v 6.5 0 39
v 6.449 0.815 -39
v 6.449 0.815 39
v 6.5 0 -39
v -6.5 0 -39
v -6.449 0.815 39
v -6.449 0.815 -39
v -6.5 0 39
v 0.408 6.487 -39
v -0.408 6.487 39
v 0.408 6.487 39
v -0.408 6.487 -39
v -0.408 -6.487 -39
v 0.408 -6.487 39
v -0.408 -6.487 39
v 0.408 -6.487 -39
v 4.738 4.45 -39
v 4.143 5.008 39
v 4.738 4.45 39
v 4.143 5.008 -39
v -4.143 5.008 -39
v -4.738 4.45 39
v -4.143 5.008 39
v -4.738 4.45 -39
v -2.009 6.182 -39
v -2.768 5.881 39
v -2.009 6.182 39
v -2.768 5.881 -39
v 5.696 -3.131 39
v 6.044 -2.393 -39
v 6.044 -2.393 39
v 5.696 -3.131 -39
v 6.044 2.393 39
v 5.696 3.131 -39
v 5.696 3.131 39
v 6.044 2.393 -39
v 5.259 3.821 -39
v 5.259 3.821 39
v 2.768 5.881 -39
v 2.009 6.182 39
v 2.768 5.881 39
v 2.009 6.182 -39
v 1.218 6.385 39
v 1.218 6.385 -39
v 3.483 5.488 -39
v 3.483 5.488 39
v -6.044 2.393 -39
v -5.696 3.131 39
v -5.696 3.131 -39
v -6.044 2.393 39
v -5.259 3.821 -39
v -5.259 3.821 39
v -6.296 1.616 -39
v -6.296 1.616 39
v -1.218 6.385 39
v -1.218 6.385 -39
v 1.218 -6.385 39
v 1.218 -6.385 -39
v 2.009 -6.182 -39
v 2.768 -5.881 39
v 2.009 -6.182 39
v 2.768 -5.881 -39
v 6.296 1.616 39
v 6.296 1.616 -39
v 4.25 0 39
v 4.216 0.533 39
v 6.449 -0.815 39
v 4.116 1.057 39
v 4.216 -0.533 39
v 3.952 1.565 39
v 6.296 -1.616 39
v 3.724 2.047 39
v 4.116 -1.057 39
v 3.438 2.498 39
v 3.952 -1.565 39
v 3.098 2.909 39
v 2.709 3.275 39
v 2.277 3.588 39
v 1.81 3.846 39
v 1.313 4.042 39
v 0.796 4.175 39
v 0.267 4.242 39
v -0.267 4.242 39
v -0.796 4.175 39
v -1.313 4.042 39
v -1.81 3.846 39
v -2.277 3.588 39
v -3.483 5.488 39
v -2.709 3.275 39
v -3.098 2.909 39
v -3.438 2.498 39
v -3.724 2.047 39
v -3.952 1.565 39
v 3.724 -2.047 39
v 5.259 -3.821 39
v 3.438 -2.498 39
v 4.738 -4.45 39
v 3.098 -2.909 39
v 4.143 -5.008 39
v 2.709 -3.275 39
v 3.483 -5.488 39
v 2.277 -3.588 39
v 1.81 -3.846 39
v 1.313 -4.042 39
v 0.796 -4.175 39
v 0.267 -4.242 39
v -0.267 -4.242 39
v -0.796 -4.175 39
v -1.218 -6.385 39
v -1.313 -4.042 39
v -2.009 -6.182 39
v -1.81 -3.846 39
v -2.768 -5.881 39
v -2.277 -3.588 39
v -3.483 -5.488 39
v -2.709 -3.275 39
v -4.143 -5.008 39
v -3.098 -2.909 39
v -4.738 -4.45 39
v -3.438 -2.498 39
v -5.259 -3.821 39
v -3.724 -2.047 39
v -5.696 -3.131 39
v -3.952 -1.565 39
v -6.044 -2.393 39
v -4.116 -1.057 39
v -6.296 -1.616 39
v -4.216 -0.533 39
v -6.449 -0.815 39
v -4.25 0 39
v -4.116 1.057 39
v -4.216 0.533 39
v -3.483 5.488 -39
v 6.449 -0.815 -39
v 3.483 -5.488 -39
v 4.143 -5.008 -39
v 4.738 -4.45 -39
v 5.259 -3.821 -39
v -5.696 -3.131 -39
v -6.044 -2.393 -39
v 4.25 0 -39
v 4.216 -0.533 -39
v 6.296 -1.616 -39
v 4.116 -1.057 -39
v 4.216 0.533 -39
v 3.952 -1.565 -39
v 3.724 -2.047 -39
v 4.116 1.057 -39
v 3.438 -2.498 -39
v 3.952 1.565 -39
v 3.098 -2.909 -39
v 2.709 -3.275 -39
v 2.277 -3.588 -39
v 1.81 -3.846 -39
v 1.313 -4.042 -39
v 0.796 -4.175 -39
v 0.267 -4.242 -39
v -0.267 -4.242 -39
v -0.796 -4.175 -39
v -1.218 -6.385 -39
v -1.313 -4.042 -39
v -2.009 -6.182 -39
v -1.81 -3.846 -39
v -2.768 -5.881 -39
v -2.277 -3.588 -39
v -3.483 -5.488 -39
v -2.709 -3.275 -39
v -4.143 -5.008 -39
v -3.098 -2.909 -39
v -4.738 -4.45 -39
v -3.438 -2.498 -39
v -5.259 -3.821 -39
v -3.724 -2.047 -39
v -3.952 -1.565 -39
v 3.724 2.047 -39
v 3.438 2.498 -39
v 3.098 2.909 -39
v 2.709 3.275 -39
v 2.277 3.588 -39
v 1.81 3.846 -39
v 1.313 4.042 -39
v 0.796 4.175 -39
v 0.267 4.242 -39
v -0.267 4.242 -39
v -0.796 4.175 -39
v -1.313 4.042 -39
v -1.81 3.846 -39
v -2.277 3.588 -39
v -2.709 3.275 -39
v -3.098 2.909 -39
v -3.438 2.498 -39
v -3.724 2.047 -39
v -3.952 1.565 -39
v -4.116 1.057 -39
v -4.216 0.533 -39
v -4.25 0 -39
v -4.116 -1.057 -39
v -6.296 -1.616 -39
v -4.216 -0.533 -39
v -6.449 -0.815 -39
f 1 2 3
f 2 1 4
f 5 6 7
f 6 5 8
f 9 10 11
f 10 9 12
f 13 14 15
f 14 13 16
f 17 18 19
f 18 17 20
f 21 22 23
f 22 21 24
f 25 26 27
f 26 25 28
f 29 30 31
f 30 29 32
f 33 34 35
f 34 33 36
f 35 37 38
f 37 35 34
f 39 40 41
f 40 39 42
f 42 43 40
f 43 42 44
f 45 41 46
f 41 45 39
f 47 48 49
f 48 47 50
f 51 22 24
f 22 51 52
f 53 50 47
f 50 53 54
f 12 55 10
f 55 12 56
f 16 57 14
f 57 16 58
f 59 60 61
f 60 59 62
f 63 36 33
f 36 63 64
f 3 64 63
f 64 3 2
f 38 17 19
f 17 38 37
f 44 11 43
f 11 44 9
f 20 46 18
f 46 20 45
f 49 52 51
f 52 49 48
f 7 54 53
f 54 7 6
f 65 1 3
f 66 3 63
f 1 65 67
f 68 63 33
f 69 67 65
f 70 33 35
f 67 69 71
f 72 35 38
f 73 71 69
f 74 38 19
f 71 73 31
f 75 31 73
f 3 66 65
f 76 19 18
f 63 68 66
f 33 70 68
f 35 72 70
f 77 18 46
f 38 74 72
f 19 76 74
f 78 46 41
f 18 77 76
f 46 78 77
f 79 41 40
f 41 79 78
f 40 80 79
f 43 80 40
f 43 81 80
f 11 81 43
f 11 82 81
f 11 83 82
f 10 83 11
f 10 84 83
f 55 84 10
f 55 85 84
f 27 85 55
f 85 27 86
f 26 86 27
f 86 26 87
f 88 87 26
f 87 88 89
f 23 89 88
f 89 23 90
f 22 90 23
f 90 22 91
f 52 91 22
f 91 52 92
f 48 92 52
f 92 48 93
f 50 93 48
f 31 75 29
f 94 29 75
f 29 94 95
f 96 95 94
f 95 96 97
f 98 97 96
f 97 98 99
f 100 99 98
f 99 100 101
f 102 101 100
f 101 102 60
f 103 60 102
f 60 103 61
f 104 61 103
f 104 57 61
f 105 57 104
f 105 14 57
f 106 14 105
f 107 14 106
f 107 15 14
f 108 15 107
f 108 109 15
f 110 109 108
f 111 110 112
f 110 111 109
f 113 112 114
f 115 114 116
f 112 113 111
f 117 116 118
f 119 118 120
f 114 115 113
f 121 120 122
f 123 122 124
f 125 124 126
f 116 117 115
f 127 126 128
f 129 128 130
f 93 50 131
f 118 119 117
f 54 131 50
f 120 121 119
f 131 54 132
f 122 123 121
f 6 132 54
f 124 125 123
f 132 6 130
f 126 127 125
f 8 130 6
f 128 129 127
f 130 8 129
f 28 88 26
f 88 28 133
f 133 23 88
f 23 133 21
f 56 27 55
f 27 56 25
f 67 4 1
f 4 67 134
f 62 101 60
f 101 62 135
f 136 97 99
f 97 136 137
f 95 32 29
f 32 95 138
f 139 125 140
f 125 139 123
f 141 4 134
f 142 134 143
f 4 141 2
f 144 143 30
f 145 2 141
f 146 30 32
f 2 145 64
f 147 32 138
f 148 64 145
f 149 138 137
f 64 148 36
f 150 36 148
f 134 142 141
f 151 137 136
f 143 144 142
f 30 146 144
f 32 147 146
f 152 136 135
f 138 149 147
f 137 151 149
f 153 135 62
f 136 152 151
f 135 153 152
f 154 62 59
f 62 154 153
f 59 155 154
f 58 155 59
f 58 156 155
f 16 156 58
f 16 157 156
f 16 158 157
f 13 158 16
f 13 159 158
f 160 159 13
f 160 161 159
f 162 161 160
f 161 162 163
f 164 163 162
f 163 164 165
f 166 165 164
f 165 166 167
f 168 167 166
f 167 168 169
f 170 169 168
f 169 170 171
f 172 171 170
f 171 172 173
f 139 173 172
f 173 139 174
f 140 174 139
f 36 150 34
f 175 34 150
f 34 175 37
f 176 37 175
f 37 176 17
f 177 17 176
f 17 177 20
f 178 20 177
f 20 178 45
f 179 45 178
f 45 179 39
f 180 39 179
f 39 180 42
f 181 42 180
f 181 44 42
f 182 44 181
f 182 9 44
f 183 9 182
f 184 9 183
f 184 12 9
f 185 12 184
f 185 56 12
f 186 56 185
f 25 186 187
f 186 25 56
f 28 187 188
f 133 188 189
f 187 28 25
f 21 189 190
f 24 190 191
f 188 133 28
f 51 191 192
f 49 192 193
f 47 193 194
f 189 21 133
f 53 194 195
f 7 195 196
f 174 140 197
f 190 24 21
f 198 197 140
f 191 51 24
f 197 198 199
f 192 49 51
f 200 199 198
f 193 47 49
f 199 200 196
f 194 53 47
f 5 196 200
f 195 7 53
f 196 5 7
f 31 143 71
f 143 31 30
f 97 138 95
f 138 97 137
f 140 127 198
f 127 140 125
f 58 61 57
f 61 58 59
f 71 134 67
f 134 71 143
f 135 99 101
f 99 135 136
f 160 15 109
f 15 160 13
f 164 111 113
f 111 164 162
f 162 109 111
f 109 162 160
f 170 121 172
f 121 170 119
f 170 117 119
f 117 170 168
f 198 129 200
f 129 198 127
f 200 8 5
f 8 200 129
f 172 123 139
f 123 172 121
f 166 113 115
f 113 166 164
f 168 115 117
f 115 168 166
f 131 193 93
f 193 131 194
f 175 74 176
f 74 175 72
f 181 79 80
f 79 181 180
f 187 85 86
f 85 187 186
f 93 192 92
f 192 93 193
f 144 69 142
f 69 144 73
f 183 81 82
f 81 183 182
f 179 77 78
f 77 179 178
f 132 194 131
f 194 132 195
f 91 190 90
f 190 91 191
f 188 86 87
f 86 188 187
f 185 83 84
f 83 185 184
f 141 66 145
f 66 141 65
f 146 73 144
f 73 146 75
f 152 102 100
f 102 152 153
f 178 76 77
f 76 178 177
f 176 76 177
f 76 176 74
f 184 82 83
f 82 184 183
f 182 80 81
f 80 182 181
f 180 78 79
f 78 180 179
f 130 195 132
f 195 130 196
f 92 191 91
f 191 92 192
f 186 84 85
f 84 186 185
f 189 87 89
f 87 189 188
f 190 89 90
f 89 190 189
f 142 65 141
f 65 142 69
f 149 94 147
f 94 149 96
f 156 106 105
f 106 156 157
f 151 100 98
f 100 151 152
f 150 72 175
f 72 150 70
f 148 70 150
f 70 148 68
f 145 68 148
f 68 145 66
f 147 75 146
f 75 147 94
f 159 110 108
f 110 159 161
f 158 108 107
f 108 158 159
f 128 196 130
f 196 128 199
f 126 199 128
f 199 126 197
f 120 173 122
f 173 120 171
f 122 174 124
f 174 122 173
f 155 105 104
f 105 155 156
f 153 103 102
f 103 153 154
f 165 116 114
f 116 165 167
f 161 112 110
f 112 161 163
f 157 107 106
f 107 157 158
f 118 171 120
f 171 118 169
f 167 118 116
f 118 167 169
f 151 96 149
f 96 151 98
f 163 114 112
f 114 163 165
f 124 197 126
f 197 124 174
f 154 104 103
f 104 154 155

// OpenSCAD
$fn = 50;


difference() {
	union() {
		translate(v = [0, 0, -39.0000000000]) {
			cylinder(h = 78, r = 6.5000000000);
		}
	}
	union() {
		translate(v = [0, 0, -100.0000000000]) {
			cylinder(h = 200, r = 4.2500000000);
		}
	}
}
